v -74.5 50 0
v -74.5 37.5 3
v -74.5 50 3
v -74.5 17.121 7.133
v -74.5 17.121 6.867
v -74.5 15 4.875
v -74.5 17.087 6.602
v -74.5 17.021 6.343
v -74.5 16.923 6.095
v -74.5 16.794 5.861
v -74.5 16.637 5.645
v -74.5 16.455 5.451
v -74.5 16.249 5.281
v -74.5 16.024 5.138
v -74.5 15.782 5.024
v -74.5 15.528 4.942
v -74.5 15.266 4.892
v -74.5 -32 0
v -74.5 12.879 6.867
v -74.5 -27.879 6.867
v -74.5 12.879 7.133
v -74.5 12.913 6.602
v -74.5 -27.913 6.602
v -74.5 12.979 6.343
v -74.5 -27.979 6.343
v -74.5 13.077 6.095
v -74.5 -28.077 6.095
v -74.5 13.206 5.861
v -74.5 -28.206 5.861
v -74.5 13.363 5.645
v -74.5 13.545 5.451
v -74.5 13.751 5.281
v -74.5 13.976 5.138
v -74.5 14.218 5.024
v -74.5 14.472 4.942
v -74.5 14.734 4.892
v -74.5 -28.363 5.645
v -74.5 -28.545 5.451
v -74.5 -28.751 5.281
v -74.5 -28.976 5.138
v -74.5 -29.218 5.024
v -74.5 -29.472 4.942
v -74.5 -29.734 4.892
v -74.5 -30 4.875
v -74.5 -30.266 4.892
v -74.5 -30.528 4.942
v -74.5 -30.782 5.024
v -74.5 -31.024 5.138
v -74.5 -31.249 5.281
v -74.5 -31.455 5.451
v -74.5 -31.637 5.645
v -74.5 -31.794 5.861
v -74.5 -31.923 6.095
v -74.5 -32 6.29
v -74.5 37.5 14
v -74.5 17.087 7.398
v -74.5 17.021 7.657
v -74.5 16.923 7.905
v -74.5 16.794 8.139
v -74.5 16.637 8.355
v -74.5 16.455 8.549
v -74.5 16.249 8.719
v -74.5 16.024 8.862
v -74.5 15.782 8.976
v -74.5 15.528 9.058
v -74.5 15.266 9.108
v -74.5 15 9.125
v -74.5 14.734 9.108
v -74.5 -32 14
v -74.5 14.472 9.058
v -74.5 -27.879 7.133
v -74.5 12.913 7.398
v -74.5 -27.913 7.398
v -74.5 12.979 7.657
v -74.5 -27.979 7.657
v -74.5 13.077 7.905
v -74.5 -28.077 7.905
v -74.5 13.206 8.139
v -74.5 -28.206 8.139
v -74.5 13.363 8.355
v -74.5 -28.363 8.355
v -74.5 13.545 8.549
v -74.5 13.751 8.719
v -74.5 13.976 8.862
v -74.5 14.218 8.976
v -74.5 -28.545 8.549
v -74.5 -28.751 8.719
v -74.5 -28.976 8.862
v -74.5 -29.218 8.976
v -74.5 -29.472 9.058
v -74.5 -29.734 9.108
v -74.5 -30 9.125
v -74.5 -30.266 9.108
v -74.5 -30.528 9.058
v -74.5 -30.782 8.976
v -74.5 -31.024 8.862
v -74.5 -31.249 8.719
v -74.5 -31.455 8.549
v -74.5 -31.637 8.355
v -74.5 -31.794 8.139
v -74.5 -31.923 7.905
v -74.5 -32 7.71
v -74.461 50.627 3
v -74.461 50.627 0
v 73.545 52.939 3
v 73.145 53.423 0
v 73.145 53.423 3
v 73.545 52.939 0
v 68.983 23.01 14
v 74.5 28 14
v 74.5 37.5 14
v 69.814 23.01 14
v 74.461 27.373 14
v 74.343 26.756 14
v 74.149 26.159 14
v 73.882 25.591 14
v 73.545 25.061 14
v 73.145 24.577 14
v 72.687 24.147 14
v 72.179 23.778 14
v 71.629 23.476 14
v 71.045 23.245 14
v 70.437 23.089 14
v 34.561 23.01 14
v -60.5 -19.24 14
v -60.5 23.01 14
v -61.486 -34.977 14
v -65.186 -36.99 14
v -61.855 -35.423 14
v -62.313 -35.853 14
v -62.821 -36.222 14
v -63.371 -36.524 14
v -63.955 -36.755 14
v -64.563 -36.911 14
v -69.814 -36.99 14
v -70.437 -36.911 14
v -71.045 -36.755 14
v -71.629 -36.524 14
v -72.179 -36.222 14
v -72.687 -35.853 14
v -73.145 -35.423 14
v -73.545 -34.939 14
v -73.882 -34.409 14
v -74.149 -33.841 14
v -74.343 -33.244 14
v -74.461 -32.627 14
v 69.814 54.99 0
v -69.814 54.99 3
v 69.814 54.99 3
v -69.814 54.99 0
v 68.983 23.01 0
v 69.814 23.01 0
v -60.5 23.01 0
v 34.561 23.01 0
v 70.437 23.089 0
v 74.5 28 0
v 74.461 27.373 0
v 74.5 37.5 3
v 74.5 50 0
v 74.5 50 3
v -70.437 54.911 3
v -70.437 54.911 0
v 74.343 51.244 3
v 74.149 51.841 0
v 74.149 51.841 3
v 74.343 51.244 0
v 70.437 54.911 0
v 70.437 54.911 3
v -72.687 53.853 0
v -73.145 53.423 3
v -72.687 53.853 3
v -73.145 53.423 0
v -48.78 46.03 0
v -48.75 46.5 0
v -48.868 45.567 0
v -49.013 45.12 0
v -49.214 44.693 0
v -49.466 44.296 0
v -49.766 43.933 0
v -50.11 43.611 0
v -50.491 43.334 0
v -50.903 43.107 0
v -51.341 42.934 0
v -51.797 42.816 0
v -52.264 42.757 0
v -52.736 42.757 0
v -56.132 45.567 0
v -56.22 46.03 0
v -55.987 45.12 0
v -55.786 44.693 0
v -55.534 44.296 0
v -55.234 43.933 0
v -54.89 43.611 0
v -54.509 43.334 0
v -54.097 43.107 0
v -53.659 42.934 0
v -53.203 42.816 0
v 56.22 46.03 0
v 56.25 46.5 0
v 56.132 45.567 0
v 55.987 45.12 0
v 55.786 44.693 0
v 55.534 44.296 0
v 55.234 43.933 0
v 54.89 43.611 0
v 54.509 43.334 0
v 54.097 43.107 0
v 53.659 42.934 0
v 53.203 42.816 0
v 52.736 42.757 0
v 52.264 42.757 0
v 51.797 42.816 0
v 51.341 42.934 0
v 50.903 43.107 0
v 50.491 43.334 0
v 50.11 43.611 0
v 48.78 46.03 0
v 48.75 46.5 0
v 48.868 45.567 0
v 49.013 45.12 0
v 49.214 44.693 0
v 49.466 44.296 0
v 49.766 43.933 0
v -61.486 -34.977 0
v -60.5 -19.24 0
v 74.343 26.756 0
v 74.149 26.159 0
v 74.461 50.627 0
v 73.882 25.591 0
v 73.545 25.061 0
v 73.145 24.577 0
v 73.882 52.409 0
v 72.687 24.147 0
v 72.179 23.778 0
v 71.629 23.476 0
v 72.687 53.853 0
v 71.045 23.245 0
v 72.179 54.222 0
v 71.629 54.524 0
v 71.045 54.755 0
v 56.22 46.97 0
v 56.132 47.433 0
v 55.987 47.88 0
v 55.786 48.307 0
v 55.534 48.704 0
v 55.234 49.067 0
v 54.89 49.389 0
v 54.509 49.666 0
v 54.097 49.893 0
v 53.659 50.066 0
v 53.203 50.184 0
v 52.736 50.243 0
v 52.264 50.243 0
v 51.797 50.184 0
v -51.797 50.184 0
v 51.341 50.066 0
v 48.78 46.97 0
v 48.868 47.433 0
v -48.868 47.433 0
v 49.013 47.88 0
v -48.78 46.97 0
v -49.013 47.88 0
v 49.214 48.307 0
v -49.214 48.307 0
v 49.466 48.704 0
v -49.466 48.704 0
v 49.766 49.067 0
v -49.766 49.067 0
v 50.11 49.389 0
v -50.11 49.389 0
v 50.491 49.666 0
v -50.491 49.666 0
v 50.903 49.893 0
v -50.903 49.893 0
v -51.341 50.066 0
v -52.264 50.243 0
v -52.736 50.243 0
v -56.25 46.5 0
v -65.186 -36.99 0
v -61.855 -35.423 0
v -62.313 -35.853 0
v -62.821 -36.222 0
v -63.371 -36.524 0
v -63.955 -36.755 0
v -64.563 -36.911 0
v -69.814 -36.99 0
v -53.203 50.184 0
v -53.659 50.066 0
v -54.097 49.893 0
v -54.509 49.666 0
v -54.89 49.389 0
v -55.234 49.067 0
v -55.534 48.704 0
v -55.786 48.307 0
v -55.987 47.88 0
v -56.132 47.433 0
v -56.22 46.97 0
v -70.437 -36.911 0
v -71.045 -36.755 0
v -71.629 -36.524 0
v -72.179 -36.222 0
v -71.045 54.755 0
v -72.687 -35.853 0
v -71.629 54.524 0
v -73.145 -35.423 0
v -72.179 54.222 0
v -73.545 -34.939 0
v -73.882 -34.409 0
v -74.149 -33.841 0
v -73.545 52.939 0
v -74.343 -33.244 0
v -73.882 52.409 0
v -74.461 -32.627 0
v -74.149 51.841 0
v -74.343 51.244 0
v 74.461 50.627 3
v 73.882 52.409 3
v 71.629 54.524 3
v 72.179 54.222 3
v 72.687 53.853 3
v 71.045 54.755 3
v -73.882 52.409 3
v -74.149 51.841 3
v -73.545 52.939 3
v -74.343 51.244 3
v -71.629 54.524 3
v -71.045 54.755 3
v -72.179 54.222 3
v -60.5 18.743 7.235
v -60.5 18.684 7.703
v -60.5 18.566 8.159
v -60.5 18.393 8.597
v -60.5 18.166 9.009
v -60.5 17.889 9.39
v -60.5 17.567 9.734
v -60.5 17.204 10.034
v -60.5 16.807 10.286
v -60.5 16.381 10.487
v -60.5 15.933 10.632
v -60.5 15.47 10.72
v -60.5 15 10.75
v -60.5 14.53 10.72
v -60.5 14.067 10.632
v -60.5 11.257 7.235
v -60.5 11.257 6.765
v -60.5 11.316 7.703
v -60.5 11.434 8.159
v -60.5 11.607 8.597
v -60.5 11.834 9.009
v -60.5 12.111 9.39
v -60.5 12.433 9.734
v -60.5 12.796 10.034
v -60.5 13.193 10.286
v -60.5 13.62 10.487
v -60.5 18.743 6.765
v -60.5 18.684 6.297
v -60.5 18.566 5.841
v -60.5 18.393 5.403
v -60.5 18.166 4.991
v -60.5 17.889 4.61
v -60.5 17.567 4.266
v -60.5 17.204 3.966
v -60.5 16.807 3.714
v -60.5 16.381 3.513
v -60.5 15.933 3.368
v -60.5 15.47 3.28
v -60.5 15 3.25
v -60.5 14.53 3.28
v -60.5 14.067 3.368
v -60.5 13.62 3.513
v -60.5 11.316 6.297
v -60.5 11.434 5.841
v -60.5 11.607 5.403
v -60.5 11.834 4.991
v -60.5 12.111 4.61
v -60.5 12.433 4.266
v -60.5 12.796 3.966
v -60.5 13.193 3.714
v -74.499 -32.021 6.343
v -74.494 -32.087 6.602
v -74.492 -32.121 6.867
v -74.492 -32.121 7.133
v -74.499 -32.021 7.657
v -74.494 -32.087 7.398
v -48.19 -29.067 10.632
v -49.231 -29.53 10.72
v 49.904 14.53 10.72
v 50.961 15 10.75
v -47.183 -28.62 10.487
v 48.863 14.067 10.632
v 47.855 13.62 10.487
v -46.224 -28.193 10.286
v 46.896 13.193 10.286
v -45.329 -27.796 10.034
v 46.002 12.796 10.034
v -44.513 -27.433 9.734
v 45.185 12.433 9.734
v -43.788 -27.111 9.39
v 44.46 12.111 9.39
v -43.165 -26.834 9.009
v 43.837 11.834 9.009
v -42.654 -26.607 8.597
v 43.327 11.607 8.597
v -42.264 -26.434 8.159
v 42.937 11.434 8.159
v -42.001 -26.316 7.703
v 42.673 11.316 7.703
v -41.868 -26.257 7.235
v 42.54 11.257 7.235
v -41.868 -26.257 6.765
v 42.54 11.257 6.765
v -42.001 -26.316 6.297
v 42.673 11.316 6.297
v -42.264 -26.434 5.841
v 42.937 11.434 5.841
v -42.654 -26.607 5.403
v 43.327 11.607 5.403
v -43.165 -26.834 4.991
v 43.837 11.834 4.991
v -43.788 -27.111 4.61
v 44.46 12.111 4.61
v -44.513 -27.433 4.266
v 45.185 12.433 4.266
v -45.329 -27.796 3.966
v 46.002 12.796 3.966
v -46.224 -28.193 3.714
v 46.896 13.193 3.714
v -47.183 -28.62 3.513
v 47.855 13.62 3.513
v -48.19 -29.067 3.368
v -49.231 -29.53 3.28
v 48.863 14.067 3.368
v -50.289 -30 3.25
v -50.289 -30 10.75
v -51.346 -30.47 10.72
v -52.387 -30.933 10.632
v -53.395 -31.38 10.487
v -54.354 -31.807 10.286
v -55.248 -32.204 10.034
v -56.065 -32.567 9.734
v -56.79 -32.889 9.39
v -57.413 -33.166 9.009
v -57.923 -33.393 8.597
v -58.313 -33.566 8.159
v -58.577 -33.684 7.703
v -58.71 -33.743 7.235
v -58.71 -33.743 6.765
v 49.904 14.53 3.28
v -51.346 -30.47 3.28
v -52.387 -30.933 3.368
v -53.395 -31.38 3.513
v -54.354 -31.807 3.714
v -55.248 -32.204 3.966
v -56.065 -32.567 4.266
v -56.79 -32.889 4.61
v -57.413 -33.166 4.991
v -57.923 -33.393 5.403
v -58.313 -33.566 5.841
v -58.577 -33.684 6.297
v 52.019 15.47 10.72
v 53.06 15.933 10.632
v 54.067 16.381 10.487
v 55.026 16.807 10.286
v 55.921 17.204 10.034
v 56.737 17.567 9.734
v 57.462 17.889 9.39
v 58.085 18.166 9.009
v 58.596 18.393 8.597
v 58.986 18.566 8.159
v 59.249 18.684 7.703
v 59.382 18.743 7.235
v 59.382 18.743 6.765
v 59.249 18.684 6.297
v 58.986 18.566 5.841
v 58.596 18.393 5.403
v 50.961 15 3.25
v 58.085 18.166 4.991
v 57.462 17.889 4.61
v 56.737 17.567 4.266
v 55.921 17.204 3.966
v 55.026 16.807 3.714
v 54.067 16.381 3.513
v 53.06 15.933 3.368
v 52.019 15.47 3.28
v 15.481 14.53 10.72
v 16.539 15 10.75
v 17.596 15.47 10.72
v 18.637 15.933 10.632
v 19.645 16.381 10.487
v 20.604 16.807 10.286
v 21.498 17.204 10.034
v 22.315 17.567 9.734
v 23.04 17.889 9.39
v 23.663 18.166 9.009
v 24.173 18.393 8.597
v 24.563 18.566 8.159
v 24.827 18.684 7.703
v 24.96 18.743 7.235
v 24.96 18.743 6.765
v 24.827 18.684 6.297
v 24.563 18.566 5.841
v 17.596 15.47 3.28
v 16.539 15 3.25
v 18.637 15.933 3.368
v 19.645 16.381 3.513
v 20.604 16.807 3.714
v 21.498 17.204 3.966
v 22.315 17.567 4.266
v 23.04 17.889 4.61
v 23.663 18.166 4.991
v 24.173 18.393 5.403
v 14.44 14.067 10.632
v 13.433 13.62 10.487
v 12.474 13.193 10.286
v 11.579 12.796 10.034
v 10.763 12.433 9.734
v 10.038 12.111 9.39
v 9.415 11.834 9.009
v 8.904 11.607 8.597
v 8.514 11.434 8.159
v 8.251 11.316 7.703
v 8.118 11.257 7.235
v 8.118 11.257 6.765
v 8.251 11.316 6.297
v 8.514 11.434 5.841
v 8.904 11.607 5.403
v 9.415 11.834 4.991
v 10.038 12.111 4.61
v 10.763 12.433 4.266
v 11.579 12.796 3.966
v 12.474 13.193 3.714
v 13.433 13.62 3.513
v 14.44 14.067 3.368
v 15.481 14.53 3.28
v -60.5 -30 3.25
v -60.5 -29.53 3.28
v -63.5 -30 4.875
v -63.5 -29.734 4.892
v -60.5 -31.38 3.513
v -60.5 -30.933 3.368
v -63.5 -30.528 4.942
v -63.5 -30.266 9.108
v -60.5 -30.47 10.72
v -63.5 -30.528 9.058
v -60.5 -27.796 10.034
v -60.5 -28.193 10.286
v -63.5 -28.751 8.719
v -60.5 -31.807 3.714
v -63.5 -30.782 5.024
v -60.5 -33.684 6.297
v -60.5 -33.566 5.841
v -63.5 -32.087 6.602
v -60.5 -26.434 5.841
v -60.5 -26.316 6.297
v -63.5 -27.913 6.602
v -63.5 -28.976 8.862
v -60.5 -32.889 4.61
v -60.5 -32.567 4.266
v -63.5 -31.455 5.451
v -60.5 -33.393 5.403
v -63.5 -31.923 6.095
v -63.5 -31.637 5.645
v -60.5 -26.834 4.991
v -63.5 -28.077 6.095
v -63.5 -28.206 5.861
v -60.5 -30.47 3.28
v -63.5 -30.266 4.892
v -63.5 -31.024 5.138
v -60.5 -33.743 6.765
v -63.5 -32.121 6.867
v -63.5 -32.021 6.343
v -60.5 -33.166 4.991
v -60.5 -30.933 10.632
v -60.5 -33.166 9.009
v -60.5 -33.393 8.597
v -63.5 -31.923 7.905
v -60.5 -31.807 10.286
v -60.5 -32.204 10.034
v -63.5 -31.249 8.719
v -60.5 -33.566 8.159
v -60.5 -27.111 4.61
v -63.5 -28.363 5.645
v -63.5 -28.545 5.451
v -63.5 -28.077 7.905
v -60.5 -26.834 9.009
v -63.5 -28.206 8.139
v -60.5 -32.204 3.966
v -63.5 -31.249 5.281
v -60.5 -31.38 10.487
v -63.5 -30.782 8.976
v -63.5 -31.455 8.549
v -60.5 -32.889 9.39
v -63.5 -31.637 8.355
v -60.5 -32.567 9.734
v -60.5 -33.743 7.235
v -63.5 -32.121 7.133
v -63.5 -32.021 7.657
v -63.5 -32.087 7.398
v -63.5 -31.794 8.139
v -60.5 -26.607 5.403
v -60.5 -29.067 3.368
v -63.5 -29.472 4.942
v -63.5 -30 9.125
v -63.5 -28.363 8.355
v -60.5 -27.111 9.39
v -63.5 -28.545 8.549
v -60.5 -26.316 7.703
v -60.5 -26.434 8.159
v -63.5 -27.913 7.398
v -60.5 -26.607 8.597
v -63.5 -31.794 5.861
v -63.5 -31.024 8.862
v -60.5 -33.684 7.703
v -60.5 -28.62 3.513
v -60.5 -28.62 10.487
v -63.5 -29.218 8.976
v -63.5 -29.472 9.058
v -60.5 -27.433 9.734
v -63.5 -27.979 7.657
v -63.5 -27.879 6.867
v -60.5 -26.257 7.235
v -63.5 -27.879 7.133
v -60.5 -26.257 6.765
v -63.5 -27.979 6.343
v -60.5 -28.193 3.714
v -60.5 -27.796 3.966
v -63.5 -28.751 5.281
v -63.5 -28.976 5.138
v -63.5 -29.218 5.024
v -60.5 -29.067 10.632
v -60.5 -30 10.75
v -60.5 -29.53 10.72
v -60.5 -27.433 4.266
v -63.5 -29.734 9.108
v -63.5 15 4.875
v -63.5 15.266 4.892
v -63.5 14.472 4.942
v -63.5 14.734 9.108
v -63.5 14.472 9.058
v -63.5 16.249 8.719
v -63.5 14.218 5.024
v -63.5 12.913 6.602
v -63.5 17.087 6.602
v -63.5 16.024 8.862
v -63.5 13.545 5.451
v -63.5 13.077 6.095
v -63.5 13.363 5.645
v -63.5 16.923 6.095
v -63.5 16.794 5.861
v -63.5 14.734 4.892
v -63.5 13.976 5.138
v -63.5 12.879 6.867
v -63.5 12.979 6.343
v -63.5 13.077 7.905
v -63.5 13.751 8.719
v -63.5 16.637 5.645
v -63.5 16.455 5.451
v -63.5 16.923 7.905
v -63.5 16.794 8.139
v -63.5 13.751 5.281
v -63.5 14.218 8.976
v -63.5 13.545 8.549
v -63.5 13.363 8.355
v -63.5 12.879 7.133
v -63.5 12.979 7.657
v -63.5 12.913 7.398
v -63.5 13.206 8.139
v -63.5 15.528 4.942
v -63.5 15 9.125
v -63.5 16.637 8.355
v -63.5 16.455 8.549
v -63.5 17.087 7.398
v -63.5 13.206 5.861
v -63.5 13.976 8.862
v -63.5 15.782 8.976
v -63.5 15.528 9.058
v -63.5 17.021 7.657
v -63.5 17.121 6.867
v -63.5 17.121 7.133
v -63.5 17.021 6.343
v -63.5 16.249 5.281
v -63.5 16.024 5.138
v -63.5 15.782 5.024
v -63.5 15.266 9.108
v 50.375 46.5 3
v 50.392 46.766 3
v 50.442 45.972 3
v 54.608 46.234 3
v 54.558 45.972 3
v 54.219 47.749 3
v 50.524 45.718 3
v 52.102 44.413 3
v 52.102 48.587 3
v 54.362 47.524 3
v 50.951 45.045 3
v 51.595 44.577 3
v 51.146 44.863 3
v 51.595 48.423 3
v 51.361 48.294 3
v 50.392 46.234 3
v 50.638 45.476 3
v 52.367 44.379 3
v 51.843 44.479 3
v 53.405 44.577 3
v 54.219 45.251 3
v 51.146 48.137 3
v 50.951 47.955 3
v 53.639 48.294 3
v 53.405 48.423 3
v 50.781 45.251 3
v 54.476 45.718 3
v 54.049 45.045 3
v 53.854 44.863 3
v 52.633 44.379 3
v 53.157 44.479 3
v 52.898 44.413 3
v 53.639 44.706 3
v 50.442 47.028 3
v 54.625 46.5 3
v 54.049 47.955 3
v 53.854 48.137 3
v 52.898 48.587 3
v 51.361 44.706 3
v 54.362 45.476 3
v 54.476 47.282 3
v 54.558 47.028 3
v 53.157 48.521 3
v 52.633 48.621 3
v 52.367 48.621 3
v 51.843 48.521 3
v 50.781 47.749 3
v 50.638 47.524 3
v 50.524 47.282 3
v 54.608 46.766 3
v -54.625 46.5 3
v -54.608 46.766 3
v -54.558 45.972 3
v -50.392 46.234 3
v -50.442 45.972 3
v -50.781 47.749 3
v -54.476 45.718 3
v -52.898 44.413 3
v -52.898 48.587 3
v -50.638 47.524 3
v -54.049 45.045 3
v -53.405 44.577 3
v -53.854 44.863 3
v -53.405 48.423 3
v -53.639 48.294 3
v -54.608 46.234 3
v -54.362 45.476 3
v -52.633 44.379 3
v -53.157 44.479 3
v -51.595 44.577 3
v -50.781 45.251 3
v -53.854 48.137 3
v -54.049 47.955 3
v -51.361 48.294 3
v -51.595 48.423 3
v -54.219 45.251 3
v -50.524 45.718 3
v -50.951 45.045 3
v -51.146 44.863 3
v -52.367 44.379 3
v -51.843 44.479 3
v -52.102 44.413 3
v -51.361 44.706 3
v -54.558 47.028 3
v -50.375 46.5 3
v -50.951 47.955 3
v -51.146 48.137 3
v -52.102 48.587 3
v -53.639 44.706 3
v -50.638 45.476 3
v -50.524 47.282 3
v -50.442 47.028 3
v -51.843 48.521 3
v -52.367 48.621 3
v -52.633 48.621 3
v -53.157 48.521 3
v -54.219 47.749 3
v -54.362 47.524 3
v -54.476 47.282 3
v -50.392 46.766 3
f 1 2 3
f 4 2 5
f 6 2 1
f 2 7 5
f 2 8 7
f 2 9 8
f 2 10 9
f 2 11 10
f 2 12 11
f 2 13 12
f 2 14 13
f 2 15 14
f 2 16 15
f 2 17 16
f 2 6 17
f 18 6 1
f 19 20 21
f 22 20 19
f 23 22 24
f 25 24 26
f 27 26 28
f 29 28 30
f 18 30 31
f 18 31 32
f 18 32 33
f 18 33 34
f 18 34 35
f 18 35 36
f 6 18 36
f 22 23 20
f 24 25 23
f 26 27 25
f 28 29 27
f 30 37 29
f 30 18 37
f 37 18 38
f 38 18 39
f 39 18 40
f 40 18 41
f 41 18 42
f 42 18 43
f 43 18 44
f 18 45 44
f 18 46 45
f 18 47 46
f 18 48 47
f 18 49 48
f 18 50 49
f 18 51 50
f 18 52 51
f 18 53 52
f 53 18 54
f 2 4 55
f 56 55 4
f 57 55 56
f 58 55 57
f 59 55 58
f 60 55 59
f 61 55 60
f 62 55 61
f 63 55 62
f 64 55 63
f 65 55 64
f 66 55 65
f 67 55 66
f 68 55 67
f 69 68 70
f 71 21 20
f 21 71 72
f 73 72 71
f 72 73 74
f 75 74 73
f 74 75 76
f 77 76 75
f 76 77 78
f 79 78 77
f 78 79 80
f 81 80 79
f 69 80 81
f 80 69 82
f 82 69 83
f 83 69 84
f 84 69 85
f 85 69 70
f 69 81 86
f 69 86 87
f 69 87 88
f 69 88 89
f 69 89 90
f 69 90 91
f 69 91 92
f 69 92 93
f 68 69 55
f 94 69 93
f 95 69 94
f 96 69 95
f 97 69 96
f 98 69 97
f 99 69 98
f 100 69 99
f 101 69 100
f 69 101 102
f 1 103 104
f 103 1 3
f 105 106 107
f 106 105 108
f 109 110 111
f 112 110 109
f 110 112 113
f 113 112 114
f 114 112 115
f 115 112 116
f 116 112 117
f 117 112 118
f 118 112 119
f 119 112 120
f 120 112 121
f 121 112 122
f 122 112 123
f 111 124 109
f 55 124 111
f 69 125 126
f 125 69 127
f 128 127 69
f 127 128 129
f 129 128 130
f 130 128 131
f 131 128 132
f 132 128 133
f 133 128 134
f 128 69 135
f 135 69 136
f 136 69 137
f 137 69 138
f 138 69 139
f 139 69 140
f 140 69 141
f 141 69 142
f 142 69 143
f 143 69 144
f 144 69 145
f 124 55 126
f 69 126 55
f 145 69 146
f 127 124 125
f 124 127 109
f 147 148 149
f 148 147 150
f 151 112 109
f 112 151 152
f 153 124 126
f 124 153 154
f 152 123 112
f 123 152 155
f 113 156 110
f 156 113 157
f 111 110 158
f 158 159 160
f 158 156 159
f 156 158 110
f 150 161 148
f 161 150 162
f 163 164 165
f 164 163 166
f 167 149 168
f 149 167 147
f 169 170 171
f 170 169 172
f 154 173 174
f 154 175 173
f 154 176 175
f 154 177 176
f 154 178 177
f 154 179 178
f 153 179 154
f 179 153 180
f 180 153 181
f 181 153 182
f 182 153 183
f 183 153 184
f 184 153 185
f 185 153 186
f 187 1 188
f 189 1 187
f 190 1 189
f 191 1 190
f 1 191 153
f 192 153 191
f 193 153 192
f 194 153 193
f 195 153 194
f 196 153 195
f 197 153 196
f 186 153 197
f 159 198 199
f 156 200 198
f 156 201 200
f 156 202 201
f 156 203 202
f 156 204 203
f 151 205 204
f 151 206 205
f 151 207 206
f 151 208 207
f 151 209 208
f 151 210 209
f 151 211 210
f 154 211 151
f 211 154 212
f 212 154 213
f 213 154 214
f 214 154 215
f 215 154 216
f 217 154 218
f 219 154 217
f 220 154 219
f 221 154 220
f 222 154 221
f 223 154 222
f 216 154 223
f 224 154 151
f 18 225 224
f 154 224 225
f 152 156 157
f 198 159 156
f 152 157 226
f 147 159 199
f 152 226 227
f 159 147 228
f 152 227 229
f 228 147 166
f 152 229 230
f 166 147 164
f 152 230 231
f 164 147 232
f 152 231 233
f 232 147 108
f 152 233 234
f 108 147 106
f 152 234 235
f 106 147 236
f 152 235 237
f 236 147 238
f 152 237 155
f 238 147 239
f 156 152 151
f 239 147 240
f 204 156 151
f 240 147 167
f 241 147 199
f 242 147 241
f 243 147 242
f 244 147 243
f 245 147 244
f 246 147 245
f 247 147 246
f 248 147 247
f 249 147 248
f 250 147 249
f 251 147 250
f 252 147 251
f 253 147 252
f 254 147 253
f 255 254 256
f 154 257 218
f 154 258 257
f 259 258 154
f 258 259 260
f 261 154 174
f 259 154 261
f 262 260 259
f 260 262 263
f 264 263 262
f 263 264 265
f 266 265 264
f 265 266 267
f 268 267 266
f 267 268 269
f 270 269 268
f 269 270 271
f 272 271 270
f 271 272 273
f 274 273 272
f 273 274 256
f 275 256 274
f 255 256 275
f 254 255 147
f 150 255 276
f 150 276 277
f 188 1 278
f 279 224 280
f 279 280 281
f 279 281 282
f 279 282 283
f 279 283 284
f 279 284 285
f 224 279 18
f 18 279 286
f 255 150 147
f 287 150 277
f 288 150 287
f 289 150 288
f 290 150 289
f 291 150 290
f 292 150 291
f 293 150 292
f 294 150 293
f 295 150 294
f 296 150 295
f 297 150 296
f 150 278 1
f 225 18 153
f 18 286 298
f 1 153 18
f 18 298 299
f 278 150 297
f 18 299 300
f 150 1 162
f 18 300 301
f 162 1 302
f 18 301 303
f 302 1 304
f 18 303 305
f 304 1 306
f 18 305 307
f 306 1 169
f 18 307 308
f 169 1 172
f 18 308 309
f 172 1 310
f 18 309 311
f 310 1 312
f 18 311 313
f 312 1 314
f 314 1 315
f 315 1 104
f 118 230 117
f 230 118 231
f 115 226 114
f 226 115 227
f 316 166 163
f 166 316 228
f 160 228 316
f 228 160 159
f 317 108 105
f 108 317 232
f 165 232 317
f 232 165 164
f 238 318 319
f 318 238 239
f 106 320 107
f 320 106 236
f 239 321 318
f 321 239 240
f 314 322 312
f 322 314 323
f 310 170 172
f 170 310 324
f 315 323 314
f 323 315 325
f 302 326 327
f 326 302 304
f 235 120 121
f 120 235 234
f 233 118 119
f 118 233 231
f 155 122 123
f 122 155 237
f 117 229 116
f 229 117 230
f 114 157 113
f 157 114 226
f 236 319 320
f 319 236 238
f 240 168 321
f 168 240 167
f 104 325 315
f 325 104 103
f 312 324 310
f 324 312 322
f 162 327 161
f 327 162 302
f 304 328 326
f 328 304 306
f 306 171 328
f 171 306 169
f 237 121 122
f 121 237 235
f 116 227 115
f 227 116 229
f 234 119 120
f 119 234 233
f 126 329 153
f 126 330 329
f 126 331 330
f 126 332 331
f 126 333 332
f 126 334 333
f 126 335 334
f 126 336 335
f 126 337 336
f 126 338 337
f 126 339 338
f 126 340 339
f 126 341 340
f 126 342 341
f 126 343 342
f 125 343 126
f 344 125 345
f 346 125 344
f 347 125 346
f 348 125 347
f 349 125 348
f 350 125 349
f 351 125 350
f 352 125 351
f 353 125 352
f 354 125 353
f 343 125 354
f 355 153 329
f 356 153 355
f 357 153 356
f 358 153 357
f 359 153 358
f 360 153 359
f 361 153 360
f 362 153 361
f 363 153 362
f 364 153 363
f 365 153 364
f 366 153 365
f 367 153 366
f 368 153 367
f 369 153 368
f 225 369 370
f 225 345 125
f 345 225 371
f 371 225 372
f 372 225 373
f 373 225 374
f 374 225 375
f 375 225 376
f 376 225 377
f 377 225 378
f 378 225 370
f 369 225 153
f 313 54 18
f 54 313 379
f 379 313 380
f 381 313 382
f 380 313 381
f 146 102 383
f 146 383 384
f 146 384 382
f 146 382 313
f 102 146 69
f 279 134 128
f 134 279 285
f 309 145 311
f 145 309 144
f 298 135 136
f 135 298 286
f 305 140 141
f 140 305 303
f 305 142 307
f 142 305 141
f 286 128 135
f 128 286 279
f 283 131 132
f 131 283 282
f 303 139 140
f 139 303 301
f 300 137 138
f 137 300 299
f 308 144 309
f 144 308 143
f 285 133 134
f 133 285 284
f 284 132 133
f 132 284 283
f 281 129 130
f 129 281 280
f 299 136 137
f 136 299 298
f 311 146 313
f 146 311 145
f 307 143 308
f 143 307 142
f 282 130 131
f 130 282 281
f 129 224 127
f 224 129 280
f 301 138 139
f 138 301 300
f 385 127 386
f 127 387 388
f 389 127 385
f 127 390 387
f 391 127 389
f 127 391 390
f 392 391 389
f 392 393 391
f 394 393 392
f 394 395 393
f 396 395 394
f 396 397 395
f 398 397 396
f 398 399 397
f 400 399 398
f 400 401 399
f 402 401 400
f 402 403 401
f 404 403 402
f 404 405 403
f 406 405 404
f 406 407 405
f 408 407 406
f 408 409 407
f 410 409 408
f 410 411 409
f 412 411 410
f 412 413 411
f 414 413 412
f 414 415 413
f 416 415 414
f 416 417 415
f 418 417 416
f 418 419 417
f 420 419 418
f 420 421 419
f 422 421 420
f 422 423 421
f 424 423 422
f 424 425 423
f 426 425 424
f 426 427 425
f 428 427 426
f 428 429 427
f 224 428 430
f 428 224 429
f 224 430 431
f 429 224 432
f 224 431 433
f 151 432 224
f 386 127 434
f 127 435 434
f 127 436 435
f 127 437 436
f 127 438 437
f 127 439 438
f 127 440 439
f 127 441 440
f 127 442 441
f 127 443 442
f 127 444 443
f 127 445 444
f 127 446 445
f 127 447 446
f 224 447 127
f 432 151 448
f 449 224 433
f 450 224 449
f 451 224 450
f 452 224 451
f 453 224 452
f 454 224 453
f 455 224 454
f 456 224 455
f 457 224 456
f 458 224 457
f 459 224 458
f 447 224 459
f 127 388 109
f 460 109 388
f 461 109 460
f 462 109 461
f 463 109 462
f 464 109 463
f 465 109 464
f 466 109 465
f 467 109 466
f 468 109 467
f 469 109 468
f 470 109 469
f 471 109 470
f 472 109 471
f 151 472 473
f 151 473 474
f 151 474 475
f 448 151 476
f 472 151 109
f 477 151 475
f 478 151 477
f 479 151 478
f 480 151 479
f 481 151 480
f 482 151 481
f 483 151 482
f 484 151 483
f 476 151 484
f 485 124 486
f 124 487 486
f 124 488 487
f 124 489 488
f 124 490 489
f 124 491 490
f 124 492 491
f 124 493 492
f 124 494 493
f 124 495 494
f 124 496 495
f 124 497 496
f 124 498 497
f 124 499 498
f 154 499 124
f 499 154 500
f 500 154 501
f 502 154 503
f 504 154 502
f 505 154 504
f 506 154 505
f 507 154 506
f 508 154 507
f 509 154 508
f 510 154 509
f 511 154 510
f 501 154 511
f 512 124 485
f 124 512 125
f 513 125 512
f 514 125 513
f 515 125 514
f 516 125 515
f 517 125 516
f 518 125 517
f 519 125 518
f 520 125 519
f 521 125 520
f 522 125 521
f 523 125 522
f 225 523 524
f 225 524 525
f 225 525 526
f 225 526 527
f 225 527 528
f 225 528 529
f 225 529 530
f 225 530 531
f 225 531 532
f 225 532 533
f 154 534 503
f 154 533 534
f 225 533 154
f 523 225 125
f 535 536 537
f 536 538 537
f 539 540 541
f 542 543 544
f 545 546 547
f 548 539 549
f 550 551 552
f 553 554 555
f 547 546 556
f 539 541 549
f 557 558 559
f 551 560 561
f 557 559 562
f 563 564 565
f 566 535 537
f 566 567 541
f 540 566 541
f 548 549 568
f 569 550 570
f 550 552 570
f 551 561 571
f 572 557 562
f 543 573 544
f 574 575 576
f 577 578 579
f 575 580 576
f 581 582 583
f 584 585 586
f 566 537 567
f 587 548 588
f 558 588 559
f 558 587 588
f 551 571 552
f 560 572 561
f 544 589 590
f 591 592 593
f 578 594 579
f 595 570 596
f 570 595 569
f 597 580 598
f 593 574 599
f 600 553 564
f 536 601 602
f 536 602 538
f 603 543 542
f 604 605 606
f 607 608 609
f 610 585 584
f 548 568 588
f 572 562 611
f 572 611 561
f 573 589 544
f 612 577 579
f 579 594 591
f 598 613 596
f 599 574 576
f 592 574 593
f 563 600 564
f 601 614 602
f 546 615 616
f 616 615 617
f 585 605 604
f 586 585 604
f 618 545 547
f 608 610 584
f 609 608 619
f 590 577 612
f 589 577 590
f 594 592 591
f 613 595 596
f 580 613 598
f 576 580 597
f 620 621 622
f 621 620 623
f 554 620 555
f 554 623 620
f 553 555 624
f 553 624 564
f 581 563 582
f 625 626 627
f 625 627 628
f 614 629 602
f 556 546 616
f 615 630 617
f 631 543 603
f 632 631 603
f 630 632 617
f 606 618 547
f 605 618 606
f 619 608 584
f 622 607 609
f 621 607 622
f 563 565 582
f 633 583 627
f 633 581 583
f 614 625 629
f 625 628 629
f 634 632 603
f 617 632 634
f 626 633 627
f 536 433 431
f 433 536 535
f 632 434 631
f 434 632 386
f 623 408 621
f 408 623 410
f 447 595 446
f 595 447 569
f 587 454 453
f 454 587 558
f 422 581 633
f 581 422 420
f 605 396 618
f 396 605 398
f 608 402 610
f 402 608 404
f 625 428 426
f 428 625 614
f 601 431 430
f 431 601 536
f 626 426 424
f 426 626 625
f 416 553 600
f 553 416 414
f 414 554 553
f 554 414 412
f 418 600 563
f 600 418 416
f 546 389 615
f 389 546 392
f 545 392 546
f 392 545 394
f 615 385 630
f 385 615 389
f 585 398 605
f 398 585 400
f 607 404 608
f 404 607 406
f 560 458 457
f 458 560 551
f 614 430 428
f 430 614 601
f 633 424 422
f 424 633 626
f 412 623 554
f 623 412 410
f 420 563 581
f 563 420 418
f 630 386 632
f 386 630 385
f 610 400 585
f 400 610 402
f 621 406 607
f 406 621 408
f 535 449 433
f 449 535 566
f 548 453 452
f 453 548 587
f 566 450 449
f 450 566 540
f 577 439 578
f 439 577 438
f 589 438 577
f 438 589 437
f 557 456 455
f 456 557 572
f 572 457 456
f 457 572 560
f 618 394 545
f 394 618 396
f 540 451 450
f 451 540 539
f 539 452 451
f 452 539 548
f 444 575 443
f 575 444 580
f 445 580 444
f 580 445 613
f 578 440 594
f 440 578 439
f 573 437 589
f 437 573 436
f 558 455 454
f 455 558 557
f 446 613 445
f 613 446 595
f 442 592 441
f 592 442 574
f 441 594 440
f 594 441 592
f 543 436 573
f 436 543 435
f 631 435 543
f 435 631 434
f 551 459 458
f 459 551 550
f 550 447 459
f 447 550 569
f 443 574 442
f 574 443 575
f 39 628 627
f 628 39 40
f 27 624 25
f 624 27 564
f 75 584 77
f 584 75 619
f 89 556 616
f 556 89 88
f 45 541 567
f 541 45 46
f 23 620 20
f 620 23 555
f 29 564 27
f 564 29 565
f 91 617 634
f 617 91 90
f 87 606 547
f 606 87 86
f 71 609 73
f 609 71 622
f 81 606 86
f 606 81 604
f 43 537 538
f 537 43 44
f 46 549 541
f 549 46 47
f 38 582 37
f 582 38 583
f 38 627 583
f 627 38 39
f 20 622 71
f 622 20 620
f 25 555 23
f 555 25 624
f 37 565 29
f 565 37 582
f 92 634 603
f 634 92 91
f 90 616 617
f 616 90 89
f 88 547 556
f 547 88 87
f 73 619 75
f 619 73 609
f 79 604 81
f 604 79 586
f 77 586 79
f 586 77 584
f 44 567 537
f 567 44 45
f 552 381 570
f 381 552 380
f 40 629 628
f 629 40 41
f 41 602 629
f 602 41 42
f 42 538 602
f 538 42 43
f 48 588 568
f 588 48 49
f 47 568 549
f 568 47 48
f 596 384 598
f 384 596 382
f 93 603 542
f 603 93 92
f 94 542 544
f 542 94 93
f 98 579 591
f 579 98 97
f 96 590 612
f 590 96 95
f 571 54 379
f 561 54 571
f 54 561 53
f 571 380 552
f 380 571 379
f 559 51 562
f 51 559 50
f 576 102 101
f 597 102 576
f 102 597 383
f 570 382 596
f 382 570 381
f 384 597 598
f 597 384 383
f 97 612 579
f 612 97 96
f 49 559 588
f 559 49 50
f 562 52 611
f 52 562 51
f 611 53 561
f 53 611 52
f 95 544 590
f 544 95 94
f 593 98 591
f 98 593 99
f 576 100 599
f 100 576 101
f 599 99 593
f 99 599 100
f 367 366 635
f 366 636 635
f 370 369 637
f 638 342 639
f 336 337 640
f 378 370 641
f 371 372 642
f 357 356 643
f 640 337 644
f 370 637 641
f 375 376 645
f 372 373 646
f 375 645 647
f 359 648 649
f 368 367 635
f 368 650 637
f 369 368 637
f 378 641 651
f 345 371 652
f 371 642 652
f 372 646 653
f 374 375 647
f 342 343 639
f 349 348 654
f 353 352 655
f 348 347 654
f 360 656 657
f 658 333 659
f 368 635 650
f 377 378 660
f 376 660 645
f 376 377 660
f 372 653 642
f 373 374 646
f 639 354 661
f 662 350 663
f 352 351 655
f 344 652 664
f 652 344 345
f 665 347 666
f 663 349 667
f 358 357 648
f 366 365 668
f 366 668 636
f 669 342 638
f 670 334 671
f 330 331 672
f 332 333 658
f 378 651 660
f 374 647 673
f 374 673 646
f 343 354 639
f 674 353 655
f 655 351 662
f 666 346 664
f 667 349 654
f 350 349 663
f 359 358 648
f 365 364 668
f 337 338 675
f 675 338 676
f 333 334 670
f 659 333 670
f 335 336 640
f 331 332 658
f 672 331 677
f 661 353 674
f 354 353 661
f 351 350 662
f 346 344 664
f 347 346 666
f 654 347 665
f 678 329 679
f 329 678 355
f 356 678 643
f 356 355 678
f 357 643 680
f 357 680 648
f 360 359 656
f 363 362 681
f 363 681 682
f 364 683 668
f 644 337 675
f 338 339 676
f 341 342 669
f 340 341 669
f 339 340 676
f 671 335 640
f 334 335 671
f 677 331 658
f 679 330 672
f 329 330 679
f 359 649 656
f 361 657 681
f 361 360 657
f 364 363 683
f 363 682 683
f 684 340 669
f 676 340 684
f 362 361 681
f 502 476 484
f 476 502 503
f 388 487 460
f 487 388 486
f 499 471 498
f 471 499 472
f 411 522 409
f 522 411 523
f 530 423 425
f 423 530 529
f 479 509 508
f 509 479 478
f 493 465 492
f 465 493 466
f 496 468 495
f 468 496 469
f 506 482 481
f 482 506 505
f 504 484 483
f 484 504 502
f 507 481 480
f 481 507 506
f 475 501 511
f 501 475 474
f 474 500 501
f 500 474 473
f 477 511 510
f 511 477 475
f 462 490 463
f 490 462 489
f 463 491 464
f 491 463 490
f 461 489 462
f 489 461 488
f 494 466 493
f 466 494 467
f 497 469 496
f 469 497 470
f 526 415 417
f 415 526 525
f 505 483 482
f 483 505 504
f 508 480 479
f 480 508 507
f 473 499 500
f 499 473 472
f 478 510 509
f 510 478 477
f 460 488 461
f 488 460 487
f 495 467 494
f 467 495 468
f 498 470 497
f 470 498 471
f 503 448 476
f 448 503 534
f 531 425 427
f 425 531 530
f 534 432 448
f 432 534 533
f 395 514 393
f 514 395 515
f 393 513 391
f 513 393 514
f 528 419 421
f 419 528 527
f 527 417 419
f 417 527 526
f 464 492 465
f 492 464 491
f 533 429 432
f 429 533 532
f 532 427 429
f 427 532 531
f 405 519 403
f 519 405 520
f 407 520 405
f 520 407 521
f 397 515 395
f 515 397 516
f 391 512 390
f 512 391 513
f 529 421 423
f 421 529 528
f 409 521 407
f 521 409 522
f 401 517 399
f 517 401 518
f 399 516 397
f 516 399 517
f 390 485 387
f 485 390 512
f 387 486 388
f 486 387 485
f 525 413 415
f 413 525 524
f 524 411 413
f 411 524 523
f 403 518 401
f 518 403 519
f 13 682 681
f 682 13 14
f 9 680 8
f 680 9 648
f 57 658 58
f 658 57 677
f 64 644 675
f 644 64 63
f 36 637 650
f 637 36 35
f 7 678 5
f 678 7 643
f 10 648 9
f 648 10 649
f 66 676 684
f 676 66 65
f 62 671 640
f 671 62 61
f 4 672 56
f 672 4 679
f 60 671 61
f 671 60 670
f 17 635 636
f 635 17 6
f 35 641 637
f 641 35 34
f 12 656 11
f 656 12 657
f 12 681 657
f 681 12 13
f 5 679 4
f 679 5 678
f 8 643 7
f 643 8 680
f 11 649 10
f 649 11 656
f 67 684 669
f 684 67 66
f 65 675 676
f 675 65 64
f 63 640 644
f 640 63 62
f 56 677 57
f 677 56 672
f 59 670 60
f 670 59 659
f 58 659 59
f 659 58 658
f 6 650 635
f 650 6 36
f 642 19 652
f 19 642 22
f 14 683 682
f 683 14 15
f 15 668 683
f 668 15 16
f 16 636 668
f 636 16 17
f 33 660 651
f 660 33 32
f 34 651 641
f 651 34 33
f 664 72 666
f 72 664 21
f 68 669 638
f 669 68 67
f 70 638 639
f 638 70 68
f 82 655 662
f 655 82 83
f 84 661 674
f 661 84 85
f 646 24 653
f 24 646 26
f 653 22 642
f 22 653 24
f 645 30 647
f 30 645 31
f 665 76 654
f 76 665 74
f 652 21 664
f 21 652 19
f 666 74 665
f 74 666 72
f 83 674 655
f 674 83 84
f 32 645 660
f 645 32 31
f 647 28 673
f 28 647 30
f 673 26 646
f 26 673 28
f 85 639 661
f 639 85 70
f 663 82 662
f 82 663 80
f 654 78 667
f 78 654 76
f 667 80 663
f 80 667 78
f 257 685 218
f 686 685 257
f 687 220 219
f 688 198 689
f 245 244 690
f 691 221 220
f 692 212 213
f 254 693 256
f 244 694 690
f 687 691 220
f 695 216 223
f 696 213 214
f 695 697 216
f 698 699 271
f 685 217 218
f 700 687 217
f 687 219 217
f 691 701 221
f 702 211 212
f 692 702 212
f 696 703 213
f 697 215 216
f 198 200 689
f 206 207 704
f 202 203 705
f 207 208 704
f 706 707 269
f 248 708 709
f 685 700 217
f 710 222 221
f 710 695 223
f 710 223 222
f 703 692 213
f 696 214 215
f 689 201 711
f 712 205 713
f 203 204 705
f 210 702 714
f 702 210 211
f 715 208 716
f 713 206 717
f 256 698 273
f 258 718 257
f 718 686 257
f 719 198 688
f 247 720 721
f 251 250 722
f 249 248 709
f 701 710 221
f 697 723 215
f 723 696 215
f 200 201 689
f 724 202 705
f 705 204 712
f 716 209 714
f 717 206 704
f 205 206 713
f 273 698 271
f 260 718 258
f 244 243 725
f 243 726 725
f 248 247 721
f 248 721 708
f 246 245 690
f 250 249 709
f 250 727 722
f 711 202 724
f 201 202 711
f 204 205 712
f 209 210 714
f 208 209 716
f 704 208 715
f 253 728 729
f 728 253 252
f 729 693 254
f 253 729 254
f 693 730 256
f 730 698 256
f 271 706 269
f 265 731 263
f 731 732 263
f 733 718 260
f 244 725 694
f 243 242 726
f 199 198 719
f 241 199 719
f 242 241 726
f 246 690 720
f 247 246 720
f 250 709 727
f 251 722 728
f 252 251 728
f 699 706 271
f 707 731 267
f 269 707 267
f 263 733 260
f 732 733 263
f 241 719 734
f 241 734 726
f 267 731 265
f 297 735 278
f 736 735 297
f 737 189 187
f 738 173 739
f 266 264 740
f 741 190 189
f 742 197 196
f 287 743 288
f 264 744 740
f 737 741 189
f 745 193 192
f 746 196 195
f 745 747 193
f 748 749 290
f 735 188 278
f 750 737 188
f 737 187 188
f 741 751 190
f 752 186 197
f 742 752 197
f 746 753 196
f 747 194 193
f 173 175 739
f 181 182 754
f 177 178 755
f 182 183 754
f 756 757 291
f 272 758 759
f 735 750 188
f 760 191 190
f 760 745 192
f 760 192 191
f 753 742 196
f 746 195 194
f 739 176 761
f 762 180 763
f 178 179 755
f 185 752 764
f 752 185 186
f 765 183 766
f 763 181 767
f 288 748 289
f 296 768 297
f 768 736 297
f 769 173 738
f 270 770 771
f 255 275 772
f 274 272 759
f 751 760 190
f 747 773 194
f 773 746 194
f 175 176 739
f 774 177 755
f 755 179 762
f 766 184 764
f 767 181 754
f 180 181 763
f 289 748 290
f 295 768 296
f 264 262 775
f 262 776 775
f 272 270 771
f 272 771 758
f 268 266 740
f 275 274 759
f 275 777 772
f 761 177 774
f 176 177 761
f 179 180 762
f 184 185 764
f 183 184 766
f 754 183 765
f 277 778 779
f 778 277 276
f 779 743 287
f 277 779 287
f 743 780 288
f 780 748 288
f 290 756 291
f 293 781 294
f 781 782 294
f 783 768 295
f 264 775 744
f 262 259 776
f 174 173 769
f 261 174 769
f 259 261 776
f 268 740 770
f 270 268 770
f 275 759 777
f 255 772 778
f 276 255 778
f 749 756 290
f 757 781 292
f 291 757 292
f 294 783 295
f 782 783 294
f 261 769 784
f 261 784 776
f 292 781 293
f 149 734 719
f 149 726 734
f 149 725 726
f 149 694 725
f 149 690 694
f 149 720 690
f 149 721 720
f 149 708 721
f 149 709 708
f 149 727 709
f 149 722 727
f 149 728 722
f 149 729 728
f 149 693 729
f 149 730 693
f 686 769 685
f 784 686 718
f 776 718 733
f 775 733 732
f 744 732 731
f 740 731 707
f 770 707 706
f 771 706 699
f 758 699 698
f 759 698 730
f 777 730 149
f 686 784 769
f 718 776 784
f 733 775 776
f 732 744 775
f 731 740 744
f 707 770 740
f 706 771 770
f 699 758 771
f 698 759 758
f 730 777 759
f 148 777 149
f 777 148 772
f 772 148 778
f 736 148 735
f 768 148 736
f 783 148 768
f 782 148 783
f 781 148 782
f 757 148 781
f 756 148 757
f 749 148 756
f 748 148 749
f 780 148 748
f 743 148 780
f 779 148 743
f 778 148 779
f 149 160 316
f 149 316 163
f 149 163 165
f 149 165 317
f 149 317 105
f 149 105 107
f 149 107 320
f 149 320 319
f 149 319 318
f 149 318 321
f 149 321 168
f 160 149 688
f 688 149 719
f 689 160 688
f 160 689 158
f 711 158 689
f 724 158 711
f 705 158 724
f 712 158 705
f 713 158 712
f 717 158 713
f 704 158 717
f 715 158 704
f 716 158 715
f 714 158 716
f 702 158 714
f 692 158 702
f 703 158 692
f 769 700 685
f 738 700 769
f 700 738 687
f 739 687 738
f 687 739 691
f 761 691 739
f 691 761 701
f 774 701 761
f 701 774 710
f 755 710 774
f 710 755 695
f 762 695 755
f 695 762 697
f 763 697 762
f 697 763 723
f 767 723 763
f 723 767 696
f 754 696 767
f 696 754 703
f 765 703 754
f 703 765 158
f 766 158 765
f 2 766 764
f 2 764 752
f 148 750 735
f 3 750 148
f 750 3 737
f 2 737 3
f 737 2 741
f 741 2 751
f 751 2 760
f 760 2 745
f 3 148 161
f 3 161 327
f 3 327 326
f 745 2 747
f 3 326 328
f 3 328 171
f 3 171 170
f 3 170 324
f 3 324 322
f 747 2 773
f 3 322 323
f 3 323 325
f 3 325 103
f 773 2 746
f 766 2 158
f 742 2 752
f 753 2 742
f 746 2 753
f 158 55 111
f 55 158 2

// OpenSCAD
$fn = 50;


difference() {
	union() {
		translate(v = [0, 39.0000000000, 0]) {
			hull() {
				translate(v = [-69.5000000000, 11.0000000000, 0]) {
					cylinder(h = 14, r = 5);
				}
				translate(v = [69.5000000000, 11.0000000000, 0]) {
					cylinder(h = 14, r = 5);
				}
				translate(v = [-69.5000000000, -11.0000000000, 0]) {
					cylinder(h = 14, r = 5);
				}
				translate(v = [69.5000000000, -11.0000000000, 0]) {
					cylinder(h = 14, r = 5);
				}
			}
		}
		translate(v = [-67.5000000000, 0, 0]) {
			hull() {
				translate(v = [-2.0000000000, 32.0000000000, 0]) {
					cylinder(h = 14, r = 5);
				}
				translate(v = [2.0000000000, 32.0000000000, 0]) {
					cylinder(h = 14, r = 5);
				}
				translate(v = [-2.0000000000, -32.0000000000, 0]) {
					cylinder(h = 14, r = 5);
				}
				translate(v = [2.0000000000, -32.0000000000, 0]) {
					cylinder(h = 14, r = 5);
				}
			}
		}
		rotate(a = [0, 0, 23.9624889746]) {
			hull() {
				translate(v = [-73.3664335135, 2.0000000000, 0]) {
					cylinder(h = 14, r = 5);
				}
				translate(v = [73.3664335135, 2.0000000000, 0]) {
					cylinder(h = 14, r = 5);
				}
				translate(v = [-73.3664335135, -2.0000000000, 0]) {
					cylinder(h = 14, r = 5);
				}
				translate(v = [73.3664335135, -2.0000000000, 0]) {
					cylinder(h = 14, r = 5);
				}
			}
		}
	}
	union() {
		translate(v = [-60.5000000000, -30.0000000000, 7.0000000000]) {
			rotate(a = [0, 90, 0]) {
				difference() {
					union() {
						#translate(v = [0, 0, -14.0000000000]) {
							cylinder(h = 14, r = 2.0000000000);
						}
						#translate(v = [0, 0, -3]) {
							cylinder(h = 3, r1 = 2.1250000000, r2 = 3.7500000000);
						}
						#cylinder(h = 250, r = 3.7500000000);
						#translate(v = [0, 0, -14.0000000000]) {
							cylinder(h = 14, r = 2.1250000000);
						}
						#translate(v = [0, 0, -14.0000000000]) {
							cylinder(h = 14, r = 2.0000000000);
						}
					}
					union();
				}
			}
		}
		translate(v = [-60.5000000000, 15.0000000000, 7.0000000000]) {
			rotate(a = [0, 90, 0]) {
				difference() {
					union() {
						#translate(v = [0, 0, -14.0000000000]) {
							cylinder(h = 14, r = 2.0000000000);
						}
						#translate(v = [0, 0, -3]) {
							cylinder(h = 3, r1 = 2.1250000000, r2 = 3.7500000000);
						}
						#cylinder(h = 250, r = 3.7500000000);
						#translate(v = [0, 0, -14.0000000000]) {
							cylinder(h = 14, r = 2.1250000000);
						}
						#translate(v = [0, 0, -14.0000000000]) {
							cylinder(h = 14, r = 2.0000000000);
						}
					}
					union();
				}
			}
		}
		translate(v = [52.5000000000, 46.5000000000, 0.0000000000]) {
			rotate(a = [0, 180, 0]) {
				difference() {
					union() {
						#translate(v = [0, 0, -14.0000000000]) {
							cylinder(h = 14, r = 2.0000000000);
						}
						#translate(v = [0, 0, -3]) {
							cylinder(h = 3, r1 = 2.1250000000, r2 = 3.7500000000);
						}
						#cylinder(h = 250, r = 3.7500000000);
						#translate(v = [0, 0, -14.0000000000]) {
							cylinder(h = 14, r = 2.1250000000);
						}
						#translate(v = [0, 0, -14.0000000000]) {
							cylinder(h = 14, r = 2.0000000000);
						}
					}
					union();
				}
			}
		}
		translate(v = [-52.5000000000, 46.5000000000, 0.0000000000]) {
			rotate(a = [0, 180, 0]) {
				difference() {
					union() {
						#translate(v = [0, 0, -14.0000000000]) {
							cylinder(h = 14, r = 2.0000000000);
						}
						#translate(v = [0, 0, -3]) {
							cylinder(h = 3, r1 = 2.1250000000, r2 = 3.7500000000);
						}
						#cylinder(h = 250, r = 3.7500000000);
						#translate(v = [0, 0, -14.0000000000]) {
							cylinder(h = 14, r = 2.1250000000);
						}
						#translate(v = [0, 0, -14.0000000000]) {
							cylinder(h = 14, r = 2.0000000000);
						}
					}
					union();
				}
			}
		}
		translate(v = [-74.5000000000, 37.5000000000, 3]) {
			cube(size = [149, 18, 11]);
		}
	}
}
